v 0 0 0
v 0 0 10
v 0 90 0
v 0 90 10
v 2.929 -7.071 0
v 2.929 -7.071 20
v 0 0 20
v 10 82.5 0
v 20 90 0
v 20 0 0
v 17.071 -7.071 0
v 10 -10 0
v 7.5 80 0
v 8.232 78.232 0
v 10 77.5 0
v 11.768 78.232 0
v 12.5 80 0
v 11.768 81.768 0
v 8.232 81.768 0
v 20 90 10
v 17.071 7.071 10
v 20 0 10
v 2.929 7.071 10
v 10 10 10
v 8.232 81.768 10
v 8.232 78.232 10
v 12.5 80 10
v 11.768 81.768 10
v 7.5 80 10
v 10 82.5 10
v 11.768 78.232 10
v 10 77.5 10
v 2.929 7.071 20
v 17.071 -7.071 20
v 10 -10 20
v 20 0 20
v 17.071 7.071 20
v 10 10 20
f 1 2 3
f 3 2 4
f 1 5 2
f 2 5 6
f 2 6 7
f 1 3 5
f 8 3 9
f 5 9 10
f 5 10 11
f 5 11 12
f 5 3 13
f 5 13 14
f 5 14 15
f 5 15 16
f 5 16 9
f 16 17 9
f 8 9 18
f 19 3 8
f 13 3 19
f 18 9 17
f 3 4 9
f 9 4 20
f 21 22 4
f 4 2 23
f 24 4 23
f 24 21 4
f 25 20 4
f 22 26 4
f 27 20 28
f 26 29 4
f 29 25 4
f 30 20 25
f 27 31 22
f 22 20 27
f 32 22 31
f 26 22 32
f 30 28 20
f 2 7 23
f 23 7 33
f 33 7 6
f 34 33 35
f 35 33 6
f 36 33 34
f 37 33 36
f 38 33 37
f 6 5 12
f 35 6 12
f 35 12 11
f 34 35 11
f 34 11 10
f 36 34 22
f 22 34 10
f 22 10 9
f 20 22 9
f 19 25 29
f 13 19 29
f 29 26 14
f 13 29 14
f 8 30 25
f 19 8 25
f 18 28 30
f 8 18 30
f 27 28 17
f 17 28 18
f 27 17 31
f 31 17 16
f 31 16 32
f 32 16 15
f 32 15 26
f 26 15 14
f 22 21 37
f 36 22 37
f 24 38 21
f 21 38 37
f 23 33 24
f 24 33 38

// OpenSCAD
scale(10) {
union() {
	difference() {
		cube([2,9,1]);
		translate([1,8,0])
			cylinder(r=.25,$fn=8);
		/*translate([0,2,0]) {
			translate([.75,0,0])
				cylinder(h=1, r=.5, $fn=3);
			translate([1.25,.75,0])
				rotate(a=180)
					cylinder(h=1, r=.5, $fn=3);
		}
		translate([0,3.5,0]) {
			translate([.75,0,0])
				cylinder(h=1, r=.5, $fn=3);
			translate([1.25,.75,0])
				rotate(a=180)
					cylinder(h=1, r=.5, $fn=3);
		}
		translate([0,5,0]) {
			translate([.75,0,0])
				cylinder(h=1, r=.5, $fn=3);
			translate([1.25,.75,0])
				rotate(a=180)
					cylinder(h=1, r=.5, $fn=3);
		}
		translate([.75,6.5,0])
			cylinder(h=1, r=.5, $fn=3);*/
	}
	translate([1,0,0])
		cylinder(r=1,h=2,$fn=8);
	}
}
